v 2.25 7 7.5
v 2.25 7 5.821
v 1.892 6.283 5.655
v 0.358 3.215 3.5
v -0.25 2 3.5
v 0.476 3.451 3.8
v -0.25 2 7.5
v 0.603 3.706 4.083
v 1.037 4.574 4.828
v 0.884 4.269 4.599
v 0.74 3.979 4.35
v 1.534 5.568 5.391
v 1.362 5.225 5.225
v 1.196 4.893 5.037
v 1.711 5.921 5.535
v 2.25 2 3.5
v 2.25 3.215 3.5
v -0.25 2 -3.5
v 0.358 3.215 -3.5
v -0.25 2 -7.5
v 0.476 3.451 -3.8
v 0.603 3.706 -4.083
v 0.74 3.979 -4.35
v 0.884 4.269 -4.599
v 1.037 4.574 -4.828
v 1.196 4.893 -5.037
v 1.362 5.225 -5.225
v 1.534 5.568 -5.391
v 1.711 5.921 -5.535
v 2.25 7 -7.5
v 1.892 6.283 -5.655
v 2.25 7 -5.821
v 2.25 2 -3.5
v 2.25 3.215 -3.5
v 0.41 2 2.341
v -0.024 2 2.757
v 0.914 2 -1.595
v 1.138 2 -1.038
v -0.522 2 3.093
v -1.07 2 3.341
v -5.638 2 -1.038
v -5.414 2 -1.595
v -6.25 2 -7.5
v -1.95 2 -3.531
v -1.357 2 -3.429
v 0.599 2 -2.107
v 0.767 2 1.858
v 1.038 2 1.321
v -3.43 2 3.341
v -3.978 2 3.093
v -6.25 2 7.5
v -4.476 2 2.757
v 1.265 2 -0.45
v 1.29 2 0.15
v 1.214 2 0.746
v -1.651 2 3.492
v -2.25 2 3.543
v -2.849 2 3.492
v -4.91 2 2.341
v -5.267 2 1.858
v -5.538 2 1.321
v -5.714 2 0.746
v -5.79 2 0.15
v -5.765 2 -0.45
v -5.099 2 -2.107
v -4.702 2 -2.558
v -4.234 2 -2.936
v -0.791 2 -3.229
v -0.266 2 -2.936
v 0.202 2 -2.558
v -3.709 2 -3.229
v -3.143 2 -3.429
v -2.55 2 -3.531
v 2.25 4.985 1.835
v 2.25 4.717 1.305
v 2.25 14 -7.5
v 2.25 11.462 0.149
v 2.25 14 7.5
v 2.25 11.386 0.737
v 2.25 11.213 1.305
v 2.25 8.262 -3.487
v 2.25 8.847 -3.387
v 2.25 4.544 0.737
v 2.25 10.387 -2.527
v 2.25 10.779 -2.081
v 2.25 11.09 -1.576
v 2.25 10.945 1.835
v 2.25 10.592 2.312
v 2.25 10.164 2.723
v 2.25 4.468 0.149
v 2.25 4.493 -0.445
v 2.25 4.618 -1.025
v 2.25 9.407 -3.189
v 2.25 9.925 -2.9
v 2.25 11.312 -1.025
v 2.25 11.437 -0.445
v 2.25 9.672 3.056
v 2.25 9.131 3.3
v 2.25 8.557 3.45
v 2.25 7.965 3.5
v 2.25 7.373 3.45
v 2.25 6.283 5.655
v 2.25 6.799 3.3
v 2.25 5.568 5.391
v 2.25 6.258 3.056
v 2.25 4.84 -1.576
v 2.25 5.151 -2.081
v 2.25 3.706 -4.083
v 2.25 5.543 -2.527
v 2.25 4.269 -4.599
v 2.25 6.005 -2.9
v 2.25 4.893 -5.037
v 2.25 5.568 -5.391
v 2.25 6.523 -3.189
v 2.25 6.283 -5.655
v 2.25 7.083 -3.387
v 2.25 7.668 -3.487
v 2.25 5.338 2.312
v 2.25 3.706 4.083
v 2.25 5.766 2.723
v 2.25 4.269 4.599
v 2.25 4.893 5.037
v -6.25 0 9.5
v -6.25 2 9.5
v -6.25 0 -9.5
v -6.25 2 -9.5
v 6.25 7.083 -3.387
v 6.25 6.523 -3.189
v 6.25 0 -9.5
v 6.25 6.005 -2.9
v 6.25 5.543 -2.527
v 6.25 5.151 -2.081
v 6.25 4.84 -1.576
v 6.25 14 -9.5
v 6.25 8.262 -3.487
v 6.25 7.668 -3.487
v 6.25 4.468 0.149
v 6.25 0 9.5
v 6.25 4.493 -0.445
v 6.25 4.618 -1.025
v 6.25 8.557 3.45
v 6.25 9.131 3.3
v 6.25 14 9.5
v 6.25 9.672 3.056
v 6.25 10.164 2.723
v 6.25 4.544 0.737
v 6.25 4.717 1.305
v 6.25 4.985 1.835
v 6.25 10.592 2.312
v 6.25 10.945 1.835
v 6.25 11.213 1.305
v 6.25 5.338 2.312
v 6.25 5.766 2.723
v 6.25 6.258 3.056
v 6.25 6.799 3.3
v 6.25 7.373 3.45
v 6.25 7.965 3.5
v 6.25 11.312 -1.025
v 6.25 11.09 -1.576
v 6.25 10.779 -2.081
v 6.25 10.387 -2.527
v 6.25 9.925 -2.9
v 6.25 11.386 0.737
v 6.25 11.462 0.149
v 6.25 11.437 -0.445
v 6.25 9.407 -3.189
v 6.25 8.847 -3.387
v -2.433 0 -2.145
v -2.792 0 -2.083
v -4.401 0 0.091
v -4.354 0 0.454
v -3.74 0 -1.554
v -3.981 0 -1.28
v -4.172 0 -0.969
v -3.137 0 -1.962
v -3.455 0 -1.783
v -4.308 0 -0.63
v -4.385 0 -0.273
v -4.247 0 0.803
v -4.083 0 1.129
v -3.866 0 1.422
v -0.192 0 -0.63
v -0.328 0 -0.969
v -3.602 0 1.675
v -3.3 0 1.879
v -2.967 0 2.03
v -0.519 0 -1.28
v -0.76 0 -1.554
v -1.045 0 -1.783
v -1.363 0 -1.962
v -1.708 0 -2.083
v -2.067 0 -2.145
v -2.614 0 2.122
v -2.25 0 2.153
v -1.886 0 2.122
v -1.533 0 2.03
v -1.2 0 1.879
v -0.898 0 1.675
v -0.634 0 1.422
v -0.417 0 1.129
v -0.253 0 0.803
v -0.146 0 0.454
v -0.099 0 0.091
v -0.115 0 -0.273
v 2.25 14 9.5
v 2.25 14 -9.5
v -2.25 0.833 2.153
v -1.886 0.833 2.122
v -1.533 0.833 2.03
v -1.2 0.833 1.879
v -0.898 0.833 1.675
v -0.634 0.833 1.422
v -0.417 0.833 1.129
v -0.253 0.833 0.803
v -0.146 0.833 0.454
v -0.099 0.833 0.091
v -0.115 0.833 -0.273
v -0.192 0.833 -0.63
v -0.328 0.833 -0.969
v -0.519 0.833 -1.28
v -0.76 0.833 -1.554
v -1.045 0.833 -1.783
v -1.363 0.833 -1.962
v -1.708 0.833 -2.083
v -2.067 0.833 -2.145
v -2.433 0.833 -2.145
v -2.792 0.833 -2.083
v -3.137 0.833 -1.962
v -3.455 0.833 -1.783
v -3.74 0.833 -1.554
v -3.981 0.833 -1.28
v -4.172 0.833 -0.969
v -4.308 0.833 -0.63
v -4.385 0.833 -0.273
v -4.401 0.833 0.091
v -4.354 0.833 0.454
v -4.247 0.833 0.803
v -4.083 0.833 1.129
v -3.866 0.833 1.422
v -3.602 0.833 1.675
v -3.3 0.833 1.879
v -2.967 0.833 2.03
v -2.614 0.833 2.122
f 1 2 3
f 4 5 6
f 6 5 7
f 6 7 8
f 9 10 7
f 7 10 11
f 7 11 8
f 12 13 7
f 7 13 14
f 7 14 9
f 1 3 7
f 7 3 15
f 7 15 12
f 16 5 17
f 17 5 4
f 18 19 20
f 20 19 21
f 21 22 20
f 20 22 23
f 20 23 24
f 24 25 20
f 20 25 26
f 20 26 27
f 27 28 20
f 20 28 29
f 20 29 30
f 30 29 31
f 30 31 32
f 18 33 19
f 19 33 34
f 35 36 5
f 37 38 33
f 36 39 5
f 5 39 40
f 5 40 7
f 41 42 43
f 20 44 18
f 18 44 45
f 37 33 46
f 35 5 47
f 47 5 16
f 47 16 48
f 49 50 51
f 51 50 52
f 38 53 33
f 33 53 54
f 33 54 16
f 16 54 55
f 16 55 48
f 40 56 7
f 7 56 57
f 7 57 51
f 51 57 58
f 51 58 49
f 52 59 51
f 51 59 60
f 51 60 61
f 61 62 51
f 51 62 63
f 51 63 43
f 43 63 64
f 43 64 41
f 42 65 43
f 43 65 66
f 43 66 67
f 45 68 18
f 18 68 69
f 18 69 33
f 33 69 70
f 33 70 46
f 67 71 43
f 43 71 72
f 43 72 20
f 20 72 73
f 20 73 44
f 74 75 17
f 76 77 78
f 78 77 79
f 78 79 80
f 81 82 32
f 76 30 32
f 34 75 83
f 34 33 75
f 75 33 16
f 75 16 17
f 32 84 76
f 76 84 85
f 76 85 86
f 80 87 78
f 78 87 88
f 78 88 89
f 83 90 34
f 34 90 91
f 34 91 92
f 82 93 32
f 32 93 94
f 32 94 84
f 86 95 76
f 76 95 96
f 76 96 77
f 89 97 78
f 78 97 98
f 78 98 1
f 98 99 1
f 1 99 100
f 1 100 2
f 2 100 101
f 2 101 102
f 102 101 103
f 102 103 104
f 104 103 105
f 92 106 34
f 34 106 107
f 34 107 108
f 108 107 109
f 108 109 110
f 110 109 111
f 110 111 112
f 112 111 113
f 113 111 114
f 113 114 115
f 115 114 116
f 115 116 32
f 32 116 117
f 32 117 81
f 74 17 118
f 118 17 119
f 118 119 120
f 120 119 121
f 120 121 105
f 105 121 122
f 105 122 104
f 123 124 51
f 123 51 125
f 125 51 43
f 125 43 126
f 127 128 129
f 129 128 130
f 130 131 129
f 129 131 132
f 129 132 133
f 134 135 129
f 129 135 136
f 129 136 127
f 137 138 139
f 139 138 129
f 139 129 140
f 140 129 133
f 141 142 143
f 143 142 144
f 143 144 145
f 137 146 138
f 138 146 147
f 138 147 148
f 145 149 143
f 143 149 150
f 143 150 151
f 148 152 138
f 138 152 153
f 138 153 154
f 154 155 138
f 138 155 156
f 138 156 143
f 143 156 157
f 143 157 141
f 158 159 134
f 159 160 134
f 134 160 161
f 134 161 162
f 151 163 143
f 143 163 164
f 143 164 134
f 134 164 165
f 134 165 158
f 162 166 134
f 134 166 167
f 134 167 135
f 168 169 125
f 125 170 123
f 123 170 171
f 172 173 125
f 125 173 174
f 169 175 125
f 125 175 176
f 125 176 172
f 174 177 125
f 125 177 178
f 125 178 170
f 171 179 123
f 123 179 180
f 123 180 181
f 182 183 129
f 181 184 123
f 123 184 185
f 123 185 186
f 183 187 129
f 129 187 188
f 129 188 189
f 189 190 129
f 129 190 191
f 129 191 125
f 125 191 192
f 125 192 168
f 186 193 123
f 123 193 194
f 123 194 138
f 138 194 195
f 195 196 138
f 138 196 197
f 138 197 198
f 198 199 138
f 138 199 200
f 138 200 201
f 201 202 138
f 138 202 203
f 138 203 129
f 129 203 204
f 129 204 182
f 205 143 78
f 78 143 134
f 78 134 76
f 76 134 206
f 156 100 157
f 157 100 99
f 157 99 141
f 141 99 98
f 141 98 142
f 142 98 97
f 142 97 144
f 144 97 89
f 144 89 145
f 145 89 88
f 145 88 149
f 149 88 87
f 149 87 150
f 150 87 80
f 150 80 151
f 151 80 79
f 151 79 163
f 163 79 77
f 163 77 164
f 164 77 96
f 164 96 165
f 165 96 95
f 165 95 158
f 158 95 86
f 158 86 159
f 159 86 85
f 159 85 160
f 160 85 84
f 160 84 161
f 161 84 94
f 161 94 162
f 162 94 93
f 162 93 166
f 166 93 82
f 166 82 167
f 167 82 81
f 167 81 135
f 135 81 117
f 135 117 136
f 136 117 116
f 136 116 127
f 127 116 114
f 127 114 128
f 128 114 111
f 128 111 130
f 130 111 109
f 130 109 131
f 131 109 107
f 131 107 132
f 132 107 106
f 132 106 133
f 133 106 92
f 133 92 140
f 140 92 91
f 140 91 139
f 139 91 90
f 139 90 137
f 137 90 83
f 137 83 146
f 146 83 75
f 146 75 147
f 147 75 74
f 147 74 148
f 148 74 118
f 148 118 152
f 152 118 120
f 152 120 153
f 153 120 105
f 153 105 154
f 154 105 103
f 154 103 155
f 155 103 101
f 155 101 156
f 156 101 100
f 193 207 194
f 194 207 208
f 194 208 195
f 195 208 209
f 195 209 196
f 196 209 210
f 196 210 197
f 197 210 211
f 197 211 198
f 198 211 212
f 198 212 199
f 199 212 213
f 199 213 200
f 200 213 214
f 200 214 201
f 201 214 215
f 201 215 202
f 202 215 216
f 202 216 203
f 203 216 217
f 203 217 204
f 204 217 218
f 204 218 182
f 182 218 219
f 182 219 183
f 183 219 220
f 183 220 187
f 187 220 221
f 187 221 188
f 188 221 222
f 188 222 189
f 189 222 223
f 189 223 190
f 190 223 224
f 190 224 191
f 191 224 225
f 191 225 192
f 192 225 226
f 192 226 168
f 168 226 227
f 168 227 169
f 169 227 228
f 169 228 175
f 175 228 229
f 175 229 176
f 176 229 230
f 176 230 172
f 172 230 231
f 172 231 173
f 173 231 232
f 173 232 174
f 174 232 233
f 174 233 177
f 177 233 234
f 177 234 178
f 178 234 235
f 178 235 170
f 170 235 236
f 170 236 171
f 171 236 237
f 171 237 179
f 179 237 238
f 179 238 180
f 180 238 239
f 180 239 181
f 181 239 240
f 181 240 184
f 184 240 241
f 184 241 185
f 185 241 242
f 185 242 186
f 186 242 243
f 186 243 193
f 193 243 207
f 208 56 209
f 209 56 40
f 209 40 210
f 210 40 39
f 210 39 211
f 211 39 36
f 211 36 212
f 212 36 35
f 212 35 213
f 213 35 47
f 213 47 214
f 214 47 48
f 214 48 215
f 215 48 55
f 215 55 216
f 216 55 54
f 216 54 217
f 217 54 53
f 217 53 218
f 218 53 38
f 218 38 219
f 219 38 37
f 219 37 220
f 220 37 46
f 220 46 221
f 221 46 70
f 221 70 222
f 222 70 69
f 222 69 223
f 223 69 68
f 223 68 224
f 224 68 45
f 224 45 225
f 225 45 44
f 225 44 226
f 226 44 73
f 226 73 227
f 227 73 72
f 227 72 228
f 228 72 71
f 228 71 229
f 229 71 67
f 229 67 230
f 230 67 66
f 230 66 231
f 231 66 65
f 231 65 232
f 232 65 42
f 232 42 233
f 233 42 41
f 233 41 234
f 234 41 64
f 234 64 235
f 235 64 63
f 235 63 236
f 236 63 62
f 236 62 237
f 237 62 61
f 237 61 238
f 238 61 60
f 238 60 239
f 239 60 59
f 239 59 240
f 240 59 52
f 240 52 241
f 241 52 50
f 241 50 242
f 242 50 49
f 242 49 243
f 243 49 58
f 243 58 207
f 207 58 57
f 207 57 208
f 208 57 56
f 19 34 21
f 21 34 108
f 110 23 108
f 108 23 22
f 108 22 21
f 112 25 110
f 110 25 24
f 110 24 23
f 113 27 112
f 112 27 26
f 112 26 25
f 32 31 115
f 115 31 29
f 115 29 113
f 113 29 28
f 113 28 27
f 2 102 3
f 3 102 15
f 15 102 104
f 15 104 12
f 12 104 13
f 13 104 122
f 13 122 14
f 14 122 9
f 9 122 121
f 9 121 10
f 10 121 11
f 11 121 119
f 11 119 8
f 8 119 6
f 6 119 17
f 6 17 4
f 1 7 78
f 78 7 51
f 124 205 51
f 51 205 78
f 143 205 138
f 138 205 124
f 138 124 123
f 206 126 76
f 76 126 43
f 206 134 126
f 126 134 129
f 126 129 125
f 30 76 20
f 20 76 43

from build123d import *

# Parameters (mm, degrees)
SKETCH1_W           = 12.5
SKETCH1_H           = 15
BOSS_EXTRUDE1_DEPTH = 2
SKETCH4_W           = 4
SKETCH4_H           = 15
BOSS_EXTRUDE2_DEPTH = 12
BOSS_EXTRUDE3_DEPTH = 4
SKETCH5_R           = 3.5
CUT_EXTRUDE2_DEPTH  = 19.013883535
SKETCH9_R           = 5.9
CUT_EXTRUDE4_DEPTH  = 3
BOSS_EXTRUDE4_DEPTH = 2


with BuildPart() as part:
    # Sketch1 → Boss-Extrude1 (new body)
    with BuildSketch(Plane(origin=(0, 0, 0), x_dir=(1, 0, 0), z_dir=(0, 1, 0))):
        Rectangle(SKETCH1_W, SKETCH1_H)
    extrude(amount=BOSS_EXTRUDE1_DEPTH)

    # Sketch4 → Boss-Extrude2 (add)
    with BuildSketch(Plane(origin=(0, 2, 0), x_dir=(1, 0, 0), z_dir=(0, 1, 0))):
        with Locations((4.25, 0)):
            Rectangle(SKETCH4_W, SKETCH4_H)
    extrude(amount=BOSS_EXTRUDE2_DEPTH)

    # Sketch8 → Boss-Extrude3 (add)
    with BuildSketch(Plane.XY.offset(7.5)):
        Polygon((2.25, 2), (2.25, 7), (-0.25, 2), align=None)
    boss_extrude3 = extrude(amount=-BOSS_EXTRUDE3_DEPTH)

    # Sketch5 → Cut-Extrude2 (cut, through all)
    with BuildSketch(Plane.ZY.offset(-2.25)):
        with Locations((0, 7.965)):
            Circle(SKETCH5_R)
    extrude(amount=-CUT_EXTRUDE2_DEPTH, mode=Mode.SUBTRACT)

    # Sketch10 → CSK for #6 Flat Head Machine Screw (100)1 (revolve, cut)
    with BuildSketch(Plane(origin=(-2.25, 2, 0), x_dir=(0, 0, 1), z_dir=(1, 0, 0))):
        Polygon((0, 0), (0, 2), (2.15265, 2), (2.15265, 1.166893902), (3.5433, 0), align=None)
    revolve(axis=Axis((-2.25, 8.35, 0), (0, -1, 0)), mode=Mode.SUBTRACT)

    # Mirror1: Boss-Extrude3 across plane
    add(boss_extrude3.mirror(Plane.XY))

    # Sketch9 → Cut-Extrude4 (cut)
    with BuildSketch(Plane.ZY.offset(-2.25)):
        with Locations((0, 7.965)):
            Circle(SKETCH9_R)
    extrude(amount=CUT_EXTRUDE4_DEPTH, mode=Mode.SUBTRACT)

    # Sketch12 → Boss-Extrude4 (add)
    with BuildSketch(Plane.XY.offset(7.5)):
        Polygon((2.25, 14), (-6.25, 2), (-6.25, 0), (6.25, 0), (6.25, 14), align=None)
    boss_extrude4 = extrude(amount=BOSS_EXTRUDE4_DEPTH)

    # Mirror2: Boss-Extrude4 across plane
    add(boss_extrude4.mirror(Plane.XY))


solid = part.part
